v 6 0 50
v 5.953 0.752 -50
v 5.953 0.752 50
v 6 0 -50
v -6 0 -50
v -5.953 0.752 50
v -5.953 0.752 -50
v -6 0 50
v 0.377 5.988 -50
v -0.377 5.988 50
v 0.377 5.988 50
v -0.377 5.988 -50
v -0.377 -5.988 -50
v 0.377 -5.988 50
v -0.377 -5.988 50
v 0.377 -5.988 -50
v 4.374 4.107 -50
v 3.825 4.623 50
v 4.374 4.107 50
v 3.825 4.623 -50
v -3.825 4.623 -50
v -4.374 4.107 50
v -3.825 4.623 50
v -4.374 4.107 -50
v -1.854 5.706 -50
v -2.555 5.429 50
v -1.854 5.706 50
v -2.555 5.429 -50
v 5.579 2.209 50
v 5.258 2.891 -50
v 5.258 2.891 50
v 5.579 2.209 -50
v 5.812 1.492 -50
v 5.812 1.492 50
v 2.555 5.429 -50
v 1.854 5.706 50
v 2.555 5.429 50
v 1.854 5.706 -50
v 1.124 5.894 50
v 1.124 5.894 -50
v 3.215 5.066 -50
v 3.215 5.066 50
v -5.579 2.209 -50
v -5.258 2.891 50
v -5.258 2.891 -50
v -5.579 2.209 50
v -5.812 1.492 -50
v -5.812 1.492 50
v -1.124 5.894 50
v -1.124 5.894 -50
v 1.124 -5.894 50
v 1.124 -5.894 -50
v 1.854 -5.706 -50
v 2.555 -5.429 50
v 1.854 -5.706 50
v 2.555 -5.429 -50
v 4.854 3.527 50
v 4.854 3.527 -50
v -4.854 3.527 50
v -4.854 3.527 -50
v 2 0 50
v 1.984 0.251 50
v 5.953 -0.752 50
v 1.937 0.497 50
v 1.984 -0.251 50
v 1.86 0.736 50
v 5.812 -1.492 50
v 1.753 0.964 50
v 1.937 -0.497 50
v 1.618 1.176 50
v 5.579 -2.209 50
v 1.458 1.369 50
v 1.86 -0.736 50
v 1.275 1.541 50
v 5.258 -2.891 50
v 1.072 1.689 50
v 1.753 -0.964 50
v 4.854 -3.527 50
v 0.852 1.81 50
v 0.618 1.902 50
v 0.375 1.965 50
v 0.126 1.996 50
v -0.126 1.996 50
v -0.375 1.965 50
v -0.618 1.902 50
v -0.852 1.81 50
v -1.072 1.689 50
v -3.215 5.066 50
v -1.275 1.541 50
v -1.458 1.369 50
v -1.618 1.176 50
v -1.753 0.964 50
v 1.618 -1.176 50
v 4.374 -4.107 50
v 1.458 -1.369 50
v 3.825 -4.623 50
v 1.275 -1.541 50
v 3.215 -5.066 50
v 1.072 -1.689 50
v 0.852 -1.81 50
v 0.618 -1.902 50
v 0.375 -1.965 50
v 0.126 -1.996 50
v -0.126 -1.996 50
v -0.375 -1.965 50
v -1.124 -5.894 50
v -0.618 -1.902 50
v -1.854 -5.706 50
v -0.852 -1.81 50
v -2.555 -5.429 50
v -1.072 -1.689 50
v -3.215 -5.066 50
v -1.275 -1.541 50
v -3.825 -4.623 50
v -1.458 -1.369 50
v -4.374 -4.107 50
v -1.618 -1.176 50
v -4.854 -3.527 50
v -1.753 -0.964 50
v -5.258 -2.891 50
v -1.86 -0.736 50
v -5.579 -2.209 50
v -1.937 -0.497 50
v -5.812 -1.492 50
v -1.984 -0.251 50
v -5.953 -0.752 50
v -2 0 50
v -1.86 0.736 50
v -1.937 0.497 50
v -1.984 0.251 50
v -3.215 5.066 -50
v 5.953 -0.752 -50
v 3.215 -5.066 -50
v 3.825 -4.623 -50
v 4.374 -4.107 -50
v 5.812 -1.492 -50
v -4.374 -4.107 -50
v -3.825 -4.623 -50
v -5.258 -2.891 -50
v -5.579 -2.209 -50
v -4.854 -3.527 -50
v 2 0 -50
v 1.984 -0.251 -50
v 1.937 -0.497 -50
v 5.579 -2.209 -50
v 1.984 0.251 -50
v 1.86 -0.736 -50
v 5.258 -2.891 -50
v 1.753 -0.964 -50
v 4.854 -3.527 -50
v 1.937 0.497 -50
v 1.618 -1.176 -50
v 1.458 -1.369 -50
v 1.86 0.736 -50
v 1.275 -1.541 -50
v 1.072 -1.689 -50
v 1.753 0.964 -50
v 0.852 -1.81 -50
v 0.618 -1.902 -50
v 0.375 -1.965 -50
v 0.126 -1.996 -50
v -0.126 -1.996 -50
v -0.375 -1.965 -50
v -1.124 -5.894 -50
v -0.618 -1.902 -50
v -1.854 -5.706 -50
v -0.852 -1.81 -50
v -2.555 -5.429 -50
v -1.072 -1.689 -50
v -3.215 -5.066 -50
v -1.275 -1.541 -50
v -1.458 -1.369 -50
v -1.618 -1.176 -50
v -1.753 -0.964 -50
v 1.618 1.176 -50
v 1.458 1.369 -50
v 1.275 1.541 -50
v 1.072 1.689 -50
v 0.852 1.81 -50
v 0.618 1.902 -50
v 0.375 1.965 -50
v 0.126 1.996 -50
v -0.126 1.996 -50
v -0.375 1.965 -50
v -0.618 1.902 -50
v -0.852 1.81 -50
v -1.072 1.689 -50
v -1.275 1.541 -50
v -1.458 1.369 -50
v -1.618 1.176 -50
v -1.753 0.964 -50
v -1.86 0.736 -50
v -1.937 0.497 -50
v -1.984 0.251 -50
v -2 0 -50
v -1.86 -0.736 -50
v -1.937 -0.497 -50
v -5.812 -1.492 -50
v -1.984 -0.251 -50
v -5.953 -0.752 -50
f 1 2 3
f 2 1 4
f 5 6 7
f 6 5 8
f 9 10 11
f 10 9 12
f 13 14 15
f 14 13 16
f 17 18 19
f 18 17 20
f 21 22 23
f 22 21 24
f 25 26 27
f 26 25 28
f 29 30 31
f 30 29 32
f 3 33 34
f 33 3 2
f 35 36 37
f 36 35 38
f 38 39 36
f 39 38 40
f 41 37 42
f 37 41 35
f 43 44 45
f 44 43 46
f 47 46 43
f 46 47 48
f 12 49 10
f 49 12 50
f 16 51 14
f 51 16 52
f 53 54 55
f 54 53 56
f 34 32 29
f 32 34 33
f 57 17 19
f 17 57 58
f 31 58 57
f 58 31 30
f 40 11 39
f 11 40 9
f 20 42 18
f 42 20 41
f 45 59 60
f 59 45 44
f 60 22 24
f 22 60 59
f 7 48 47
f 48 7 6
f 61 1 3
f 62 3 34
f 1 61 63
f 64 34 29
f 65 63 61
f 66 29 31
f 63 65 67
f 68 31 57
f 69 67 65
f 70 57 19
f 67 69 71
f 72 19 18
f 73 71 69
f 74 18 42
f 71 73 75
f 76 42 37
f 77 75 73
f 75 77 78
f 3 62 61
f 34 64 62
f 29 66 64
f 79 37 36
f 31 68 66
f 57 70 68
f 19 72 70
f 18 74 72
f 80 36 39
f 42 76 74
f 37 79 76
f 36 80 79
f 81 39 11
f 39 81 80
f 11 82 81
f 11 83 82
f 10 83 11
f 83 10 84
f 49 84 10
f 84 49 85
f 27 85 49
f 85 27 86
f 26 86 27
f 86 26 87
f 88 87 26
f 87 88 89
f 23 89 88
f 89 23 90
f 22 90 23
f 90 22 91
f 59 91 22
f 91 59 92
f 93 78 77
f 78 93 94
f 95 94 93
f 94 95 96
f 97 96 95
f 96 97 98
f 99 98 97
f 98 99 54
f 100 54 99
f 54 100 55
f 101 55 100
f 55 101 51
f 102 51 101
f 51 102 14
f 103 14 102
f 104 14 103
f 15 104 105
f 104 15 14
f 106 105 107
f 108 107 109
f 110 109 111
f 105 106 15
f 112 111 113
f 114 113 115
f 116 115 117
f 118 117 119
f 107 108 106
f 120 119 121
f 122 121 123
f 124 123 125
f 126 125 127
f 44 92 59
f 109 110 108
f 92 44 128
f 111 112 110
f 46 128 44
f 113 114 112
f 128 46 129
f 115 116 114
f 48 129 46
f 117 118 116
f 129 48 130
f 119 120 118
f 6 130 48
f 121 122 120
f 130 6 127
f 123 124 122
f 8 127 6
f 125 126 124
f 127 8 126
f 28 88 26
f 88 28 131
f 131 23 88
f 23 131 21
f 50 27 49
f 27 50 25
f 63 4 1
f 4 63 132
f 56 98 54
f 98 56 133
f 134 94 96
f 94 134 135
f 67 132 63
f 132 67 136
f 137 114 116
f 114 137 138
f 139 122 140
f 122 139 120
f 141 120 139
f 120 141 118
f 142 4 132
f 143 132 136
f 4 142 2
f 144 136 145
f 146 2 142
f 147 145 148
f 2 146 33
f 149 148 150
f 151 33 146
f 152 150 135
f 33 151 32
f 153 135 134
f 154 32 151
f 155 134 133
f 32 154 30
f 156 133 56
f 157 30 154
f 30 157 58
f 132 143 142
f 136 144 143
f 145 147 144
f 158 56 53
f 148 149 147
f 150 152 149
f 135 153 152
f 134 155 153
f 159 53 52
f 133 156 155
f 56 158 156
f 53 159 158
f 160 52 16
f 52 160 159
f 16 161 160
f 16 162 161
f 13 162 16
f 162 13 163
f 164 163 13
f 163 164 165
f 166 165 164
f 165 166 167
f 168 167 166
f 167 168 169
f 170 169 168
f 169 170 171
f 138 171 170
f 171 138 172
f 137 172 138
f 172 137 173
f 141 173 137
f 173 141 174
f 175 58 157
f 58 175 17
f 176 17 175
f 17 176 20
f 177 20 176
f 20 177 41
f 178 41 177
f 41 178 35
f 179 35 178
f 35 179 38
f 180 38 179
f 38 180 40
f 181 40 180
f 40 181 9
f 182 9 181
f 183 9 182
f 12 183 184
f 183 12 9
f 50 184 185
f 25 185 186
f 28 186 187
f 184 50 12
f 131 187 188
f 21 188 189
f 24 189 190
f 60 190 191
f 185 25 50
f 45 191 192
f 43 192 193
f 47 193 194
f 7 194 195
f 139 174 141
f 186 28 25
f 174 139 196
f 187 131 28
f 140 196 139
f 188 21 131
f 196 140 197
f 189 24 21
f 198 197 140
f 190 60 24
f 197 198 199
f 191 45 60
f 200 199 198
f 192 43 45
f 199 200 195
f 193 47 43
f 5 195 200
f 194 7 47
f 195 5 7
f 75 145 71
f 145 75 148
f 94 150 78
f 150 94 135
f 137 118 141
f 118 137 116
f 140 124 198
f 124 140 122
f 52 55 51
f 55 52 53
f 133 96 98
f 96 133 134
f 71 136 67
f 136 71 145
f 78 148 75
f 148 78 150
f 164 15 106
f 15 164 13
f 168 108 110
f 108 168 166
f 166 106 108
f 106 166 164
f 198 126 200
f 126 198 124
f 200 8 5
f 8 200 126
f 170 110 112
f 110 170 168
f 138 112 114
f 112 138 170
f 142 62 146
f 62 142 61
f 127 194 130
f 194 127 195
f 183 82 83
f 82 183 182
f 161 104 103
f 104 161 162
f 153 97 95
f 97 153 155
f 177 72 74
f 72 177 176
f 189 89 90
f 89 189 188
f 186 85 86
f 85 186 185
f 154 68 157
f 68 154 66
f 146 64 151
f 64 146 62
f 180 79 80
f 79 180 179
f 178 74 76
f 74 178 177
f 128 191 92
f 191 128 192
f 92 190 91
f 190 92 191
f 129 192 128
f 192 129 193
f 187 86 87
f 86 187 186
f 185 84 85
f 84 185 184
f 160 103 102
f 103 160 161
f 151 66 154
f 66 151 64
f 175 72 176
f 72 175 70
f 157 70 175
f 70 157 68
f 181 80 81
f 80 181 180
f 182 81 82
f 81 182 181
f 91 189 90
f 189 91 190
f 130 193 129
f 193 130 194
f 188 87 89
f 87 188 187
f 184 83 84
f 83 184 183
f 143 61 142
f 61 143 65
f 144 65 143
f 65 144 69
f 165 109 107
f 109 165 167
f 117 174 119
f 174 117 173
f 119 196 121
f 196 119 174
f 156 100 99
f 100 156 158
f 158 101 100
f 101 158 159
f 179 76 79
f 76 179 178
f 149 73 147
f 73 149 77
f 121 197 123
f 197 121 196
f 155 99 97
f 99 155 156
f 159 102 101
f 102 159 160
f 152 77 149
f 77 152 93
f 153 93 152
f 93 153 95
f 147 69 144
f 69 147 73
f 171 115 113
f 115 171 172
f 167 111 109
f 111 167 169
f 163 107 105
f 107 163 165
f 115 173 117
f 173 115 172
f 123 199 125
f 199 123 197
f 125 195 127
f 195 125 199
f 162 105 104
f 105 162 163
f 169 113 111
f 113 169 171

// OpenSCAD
$fn = 50;


difference() {
	union() {
		translate(v = [0, 0, -50.0000000000]) {
			cylinder(h = 100, r = 6.0000000000);
		}
	}
	union() {
		translate(v = [0, 0, -100.0000000000]) {
			cylinder(h = 200, r = 2);
		}
	}
}
